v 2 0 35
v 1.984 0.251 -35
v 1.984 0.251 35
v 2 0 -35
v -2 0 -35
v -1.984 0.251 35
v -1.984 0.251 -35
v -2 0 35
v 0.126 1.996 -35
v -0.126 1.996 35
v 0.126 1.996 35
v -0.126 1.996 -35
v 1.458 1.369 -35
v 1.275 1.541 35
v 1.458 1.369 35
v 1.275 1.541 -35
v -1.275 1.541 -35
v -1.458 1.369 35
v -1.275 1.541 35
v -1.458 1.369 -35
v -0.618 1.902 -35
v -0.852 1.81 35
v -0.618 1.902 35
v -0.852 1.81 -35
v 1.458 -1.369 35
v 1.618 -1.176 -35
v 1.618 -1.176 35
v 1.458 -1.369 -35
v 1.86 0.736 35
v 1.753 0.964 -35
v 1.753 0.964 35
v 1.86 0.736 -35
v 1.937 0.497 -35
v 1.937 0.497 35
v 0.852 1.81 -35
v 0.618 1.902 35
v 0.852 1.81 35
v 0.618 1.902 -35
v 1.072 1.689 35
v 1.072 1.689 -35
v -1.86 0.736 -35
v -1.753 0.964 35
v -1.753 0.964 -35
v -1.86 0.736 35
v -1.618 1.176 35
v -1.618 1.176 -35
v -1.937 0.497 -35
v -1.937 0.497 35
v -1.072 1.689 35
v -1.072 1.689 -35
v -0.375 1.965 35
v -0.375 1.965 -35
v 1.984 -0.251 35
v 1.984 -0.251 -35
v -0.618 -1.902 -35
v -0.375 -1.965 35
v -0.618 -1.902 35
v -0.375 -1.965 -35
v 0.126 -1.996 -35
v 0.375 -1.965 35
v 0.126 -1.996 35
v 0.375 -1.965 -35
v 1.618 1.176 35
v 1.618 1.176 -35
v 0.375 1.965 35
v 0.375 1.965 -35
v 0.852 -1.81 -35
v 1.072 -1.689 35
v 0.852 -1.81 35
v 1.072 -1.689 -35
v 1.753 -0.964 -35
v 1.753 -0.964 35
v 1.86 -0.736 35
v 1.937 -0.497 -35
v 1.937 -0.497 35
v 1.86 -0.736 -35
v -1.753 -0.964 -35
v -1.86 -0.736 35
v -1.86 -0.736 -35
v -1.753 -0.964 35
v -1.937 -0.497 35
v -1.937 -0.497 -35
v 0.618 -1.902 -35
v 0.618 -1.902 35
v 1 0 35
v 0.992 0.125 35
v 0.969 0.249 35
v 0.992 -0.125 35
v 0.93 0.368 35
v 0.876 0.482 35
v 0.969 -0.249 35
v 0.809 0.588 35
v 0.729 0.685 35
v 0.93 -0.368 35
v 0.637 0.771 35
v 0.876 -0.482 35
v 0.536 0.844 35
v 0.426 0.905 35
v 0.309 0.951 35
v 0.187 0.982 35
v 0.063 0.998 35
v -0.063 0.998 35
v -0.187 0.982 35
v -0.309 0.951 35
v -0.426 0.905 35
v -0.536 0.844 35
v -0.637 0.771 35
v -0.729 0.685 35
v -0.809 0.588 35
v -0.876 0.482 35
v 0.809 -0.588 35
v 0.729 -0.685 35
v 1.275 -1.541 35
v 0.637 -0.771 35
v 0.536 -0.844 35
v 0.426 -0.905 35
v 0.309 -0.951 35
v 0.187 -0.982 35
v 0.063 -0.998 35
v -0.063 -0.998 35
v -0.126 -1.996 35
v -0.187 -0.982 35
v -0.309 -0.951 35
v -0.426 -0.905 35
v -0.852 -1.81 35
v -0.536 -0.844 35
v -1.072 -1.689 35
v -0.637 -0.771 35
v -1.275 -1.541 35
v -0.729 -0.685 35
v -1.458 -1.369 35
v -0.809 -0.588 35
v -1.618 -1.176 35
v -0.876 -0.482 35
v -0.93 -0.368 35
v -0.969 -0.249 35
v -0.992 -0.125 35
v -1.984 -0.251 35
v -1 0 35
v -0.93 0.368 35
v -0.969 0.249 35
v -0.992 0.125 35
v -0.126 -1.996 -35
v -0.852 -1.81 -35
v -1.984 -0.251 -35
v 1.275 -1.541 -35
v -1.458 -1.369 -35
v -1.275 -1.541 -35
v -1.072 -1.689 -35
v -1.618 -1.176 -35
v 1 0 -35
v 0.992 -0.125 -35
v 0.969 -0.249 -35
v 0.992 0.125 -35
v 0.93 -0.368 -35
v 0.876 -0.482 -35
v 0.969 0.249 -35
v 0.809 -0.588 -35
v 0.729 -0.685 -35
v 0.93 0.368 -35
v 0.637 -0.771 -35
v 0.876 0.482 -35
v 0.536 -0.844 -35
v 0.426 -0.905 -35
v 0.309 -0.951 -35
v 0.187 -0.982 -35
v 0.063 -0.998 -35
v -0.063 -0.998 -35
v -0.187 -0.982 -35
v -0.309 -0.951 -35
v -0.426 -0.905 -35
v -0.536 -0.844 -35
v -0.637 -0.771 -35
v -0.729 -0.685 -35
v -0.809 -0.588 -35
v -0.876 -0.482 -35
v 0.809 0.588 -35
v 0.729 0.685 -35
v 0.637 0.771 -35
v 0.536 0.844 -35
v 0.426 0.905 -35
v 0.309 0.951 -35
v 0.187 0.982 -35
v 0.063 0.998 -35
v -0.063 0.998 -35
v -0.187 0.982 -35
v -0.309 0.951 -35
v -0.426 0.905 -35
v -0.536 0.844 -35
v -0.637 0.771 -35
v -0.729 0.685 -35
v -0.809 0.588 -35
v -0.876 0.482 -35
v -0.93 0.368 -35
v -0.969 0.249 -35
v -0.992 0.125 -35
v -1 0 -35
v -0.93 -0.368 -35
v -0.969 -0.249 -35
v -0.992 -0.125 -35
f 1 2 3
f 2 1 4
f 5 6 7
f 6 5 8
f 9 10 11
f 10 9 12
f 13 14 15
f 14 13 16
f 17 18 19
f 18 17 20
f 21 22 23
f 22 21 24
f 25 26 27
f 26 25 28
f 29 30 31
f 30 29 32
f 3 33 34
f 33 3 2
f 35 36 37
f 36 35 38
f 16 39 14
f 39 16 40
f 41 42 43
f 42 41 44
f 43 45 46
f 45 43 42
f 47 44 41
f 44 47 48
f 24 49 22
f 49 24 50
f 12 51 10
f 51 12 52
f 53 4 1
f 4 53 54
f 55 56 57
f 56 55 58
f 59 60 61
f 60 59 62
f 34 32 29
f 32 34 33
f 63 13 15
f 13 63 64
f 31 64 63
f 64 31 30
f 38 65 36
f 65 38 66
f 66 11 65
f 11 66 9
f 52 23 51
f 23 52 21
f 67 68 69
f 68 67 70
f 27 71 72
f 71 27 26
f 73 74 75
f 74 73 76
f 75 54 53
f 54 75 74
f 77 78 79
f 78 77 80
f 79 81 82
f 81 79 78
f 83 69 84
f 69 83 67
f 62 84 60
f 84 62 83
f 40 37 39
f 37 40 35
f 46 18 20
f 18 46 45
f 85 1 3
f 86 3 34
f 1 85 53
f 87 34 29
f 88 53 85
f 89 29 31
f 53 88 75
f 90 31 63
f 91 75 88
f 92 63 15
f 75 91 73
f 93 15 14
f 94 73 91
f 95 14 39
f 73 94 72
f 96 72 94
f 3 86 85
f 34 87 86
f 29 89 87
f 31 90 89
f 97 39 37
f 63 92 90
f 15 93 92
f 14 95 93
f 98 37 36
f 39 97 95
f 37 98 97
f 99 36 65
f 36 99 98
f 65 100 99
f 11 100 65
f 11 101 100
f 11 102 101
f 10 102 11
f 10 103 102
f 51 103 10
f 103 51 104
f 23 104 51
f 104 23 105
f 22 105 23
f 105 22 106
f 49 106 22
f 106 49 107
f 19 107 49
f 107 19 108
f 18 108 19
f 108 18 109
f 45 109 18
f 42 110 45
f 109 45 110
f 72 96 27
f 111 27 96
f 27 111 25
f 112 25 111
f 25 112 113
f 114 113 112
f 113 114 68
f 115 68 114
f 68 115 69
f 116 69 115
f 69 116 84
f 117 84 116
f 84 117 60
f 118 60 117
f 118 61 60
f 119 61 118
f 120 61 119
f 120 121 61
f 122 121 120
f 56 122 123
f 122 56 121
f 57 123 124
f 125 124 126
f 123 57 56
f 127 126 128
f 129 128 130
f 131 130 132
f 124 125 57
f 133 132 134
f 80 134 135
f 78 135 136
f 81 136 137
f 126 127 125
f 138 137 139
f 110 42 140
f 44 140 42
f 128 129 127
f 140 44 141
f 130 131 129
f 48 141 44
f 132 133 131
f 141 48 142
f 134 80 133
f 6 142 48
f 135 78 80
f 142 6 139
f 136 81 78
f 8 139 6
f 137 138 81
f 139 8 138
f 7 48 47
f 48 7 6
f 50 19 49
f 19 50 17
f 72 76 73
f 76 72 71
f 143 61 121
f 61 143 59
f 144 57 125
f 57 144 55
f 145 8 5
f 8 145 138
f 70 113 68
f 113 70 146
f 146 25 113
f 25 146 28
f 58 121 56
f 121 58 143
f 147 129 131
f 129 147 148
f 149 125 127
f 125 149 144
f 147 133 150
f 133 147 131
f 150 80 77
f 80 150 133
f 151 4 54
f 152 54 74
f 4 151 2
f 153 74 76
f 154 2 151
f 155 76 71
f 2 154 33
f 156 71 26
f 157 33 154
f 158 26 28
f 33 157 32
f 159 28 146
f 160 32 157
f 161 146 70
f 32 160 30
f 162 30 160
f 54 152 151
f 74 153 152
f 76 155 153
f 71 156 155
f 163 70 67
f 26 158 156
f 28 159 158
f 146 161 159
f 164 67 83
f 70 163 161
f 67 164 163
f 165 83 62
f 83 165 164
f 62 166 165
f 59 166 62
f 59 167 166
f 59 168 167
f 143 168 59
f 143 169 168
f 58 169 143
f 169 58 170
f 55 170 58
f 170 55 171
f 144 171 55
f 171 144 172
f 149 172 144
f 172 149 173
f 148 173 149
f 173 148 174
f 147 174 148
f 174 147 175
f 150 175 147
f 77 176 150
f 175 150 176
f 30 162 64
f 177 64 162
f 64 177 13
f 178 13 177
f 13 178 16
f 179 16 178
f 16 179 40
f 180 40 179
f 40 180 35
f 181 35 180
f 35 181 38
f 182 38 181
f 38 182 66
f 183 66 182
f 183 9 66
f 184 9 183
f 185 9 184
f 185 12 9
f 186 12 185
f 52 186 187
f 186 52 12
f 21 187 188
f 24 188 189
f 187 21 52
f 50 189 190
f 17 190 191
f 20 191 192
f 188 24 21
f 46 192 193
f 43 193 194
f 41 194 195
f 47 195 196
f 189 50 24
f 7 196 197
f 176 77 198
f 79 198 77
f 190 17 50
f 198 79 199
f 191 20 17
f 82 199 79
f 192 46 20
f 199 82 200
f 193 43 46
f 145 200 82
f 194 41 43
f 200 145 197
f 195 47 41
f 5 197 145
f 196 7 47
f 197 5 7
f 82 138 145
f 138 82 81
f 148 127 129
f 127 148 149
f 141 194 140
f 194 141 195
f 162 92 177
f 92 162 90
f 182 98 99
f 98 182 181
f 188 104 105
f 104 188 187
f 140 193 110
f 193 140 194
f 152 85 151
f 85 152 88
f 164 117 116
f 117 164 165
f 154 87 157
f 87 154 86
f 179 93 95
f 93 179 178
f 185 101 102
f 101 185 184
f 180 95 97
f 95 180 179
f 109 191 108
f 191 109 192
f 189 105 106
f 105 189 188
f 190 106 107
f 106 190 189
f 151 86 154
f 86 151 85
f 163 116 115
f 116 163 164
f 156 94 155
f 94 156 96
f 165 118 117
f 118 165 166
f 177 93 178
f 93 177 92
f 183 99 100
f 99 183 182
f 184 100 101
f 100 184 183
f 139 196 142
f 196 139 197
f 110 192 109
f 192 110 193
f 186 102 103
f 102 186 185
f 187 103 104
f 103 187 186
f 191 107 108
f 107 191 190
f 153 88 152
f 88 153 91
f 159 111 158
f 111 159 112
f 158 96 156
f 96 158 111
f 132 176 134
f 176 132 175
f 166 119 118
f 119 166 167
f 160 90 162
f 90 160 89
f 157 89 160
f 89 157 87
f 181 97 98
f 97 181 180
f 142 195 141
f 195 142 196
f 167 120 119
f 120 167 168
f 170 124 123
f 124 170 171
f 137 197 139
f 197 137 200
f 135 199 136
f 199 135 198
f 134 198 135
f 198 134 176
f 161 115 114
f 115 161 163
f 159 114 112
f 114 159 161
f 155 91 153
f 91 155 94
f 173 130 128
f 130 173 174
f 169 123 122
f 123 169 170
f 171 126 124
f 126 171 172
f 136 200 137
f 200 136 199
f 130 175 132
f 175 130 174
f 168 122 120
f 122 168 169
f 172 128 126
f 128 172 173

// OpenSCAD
$fn = 50;


difference() {
	union() {
		translate(v = [0, 0, -35.0000000000]) {
			cylinder(h = 70, r = 2.0000000000);
		}
	}
	union() {
		translate(v = [0, 0, -100.0000000000]) {
			cylinder(h = 200, r = 1.0000000000);
		}
	}
}
